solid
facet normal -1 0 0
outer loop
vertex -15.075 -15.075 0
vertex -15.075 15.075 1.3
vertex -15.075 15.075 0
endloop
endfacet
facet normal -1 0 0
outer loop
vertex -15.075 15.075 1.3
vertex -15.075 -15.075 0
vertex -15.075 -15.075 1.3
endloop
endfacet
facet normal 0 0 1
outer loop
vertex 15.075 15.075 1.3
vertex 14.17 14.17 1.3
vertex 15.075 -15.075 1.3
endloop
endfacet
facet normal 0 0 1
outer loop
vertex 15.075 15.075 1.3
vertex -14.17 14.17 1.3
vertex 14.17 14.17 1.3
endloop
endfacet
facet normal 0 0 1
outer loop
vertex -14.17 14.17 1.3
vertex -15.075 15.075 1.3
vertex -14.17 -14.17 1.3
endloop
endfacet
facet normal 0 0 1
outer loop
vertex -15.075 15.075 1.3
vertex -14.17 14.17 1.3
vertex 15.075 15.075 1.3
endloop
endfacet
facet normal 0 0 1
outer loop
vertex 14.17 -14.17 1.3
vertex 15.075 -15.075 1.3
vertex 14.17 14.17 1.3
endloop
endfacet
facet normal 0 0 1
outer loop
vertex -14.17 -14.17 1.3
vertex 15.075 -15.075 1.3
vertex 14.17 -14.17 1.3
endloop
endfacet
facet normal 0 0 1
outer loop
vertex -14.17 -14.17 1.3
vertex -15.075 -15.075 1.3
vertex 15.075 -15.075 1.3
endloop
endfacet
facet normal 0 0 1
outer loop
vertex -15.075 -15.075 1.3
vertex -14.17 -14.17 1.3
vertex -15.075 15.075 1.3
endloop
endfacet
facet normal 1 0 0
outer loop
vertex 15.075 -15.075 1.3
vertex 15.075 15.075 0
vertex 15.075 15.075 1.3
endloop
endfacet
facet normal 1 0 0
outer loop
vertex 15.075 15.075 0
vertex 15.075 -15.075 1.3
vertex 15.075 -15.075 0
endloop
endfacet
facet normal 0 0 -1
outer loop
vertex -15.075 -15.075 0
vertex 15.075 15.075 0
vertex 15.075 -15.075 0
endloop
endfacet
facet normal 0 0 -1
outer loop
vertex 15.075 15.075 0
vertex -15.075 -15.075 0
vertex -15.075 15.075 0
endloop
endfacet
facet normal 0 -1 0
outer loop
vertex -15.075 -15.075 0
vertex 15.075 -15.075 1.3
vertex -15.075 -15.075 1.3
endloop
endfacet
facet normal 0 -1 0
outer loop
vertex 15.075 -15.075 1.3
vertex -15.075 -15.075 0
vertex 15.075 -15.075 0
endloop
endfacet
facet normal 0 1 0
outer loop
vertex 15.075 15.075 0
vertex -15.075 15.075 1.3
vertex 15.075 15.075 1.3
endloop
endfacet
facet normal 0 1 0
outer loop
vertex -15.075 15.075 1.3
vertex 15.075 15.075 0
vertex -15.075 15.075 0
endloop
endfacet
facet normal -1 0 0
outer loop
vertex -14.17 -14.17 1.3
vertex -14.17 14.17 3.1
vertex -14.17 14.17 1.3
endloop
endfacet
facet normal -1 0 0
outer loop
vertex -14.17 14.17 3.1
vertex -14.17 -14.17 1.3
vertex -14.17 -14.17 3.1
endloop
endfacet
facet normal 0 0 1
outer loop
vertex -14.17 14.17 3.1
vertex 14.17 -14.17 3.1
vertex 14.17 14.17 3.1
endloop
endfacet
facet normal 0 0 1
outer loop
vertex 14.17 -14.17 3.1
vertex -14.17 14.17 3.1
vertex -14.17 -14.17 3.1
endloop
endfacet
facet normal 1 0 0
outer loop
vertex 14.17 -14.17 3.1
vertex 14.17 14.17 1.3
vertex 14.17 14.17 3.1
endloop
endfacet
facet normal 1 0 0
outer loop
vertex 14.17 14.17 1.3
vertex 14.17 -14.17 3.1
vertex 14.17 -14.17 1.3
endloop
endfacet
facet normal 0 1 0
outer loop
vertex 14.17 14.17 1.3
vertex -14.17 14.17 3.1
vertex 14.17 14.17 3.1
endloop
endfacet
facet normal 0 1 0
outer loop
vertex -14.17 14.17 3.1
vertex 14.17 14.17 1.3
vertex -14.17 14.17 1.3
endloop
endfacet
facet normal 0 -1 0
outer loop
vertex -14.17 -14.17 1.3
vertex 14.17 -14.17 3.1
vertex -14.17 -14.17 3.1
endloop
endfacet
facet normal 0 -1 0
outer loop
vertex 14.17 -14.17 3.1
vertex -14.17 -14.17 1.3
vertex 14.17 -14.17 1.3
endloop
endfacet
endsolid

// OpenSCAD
// All dimensions take into account largest tolerances

// PCB and connections
pcb_width = 30.00+0.15;
pcb_height = 1.20 + 0.10;
// shift to align bottom with z=0 
translate([0, 0, pcb_height/2]){
    cube(size = [pcb_width,pcb_width,pcb_height], center = true);
}
// Metal package
metal_width = 28.34;
metal_height = 1.8;
// shift to align with top of PCB
translate([0, 0, pcb_height+(metal_height/2)]){
    cube(size = [metal_width,metal_width,metal_height], center = true);
}
